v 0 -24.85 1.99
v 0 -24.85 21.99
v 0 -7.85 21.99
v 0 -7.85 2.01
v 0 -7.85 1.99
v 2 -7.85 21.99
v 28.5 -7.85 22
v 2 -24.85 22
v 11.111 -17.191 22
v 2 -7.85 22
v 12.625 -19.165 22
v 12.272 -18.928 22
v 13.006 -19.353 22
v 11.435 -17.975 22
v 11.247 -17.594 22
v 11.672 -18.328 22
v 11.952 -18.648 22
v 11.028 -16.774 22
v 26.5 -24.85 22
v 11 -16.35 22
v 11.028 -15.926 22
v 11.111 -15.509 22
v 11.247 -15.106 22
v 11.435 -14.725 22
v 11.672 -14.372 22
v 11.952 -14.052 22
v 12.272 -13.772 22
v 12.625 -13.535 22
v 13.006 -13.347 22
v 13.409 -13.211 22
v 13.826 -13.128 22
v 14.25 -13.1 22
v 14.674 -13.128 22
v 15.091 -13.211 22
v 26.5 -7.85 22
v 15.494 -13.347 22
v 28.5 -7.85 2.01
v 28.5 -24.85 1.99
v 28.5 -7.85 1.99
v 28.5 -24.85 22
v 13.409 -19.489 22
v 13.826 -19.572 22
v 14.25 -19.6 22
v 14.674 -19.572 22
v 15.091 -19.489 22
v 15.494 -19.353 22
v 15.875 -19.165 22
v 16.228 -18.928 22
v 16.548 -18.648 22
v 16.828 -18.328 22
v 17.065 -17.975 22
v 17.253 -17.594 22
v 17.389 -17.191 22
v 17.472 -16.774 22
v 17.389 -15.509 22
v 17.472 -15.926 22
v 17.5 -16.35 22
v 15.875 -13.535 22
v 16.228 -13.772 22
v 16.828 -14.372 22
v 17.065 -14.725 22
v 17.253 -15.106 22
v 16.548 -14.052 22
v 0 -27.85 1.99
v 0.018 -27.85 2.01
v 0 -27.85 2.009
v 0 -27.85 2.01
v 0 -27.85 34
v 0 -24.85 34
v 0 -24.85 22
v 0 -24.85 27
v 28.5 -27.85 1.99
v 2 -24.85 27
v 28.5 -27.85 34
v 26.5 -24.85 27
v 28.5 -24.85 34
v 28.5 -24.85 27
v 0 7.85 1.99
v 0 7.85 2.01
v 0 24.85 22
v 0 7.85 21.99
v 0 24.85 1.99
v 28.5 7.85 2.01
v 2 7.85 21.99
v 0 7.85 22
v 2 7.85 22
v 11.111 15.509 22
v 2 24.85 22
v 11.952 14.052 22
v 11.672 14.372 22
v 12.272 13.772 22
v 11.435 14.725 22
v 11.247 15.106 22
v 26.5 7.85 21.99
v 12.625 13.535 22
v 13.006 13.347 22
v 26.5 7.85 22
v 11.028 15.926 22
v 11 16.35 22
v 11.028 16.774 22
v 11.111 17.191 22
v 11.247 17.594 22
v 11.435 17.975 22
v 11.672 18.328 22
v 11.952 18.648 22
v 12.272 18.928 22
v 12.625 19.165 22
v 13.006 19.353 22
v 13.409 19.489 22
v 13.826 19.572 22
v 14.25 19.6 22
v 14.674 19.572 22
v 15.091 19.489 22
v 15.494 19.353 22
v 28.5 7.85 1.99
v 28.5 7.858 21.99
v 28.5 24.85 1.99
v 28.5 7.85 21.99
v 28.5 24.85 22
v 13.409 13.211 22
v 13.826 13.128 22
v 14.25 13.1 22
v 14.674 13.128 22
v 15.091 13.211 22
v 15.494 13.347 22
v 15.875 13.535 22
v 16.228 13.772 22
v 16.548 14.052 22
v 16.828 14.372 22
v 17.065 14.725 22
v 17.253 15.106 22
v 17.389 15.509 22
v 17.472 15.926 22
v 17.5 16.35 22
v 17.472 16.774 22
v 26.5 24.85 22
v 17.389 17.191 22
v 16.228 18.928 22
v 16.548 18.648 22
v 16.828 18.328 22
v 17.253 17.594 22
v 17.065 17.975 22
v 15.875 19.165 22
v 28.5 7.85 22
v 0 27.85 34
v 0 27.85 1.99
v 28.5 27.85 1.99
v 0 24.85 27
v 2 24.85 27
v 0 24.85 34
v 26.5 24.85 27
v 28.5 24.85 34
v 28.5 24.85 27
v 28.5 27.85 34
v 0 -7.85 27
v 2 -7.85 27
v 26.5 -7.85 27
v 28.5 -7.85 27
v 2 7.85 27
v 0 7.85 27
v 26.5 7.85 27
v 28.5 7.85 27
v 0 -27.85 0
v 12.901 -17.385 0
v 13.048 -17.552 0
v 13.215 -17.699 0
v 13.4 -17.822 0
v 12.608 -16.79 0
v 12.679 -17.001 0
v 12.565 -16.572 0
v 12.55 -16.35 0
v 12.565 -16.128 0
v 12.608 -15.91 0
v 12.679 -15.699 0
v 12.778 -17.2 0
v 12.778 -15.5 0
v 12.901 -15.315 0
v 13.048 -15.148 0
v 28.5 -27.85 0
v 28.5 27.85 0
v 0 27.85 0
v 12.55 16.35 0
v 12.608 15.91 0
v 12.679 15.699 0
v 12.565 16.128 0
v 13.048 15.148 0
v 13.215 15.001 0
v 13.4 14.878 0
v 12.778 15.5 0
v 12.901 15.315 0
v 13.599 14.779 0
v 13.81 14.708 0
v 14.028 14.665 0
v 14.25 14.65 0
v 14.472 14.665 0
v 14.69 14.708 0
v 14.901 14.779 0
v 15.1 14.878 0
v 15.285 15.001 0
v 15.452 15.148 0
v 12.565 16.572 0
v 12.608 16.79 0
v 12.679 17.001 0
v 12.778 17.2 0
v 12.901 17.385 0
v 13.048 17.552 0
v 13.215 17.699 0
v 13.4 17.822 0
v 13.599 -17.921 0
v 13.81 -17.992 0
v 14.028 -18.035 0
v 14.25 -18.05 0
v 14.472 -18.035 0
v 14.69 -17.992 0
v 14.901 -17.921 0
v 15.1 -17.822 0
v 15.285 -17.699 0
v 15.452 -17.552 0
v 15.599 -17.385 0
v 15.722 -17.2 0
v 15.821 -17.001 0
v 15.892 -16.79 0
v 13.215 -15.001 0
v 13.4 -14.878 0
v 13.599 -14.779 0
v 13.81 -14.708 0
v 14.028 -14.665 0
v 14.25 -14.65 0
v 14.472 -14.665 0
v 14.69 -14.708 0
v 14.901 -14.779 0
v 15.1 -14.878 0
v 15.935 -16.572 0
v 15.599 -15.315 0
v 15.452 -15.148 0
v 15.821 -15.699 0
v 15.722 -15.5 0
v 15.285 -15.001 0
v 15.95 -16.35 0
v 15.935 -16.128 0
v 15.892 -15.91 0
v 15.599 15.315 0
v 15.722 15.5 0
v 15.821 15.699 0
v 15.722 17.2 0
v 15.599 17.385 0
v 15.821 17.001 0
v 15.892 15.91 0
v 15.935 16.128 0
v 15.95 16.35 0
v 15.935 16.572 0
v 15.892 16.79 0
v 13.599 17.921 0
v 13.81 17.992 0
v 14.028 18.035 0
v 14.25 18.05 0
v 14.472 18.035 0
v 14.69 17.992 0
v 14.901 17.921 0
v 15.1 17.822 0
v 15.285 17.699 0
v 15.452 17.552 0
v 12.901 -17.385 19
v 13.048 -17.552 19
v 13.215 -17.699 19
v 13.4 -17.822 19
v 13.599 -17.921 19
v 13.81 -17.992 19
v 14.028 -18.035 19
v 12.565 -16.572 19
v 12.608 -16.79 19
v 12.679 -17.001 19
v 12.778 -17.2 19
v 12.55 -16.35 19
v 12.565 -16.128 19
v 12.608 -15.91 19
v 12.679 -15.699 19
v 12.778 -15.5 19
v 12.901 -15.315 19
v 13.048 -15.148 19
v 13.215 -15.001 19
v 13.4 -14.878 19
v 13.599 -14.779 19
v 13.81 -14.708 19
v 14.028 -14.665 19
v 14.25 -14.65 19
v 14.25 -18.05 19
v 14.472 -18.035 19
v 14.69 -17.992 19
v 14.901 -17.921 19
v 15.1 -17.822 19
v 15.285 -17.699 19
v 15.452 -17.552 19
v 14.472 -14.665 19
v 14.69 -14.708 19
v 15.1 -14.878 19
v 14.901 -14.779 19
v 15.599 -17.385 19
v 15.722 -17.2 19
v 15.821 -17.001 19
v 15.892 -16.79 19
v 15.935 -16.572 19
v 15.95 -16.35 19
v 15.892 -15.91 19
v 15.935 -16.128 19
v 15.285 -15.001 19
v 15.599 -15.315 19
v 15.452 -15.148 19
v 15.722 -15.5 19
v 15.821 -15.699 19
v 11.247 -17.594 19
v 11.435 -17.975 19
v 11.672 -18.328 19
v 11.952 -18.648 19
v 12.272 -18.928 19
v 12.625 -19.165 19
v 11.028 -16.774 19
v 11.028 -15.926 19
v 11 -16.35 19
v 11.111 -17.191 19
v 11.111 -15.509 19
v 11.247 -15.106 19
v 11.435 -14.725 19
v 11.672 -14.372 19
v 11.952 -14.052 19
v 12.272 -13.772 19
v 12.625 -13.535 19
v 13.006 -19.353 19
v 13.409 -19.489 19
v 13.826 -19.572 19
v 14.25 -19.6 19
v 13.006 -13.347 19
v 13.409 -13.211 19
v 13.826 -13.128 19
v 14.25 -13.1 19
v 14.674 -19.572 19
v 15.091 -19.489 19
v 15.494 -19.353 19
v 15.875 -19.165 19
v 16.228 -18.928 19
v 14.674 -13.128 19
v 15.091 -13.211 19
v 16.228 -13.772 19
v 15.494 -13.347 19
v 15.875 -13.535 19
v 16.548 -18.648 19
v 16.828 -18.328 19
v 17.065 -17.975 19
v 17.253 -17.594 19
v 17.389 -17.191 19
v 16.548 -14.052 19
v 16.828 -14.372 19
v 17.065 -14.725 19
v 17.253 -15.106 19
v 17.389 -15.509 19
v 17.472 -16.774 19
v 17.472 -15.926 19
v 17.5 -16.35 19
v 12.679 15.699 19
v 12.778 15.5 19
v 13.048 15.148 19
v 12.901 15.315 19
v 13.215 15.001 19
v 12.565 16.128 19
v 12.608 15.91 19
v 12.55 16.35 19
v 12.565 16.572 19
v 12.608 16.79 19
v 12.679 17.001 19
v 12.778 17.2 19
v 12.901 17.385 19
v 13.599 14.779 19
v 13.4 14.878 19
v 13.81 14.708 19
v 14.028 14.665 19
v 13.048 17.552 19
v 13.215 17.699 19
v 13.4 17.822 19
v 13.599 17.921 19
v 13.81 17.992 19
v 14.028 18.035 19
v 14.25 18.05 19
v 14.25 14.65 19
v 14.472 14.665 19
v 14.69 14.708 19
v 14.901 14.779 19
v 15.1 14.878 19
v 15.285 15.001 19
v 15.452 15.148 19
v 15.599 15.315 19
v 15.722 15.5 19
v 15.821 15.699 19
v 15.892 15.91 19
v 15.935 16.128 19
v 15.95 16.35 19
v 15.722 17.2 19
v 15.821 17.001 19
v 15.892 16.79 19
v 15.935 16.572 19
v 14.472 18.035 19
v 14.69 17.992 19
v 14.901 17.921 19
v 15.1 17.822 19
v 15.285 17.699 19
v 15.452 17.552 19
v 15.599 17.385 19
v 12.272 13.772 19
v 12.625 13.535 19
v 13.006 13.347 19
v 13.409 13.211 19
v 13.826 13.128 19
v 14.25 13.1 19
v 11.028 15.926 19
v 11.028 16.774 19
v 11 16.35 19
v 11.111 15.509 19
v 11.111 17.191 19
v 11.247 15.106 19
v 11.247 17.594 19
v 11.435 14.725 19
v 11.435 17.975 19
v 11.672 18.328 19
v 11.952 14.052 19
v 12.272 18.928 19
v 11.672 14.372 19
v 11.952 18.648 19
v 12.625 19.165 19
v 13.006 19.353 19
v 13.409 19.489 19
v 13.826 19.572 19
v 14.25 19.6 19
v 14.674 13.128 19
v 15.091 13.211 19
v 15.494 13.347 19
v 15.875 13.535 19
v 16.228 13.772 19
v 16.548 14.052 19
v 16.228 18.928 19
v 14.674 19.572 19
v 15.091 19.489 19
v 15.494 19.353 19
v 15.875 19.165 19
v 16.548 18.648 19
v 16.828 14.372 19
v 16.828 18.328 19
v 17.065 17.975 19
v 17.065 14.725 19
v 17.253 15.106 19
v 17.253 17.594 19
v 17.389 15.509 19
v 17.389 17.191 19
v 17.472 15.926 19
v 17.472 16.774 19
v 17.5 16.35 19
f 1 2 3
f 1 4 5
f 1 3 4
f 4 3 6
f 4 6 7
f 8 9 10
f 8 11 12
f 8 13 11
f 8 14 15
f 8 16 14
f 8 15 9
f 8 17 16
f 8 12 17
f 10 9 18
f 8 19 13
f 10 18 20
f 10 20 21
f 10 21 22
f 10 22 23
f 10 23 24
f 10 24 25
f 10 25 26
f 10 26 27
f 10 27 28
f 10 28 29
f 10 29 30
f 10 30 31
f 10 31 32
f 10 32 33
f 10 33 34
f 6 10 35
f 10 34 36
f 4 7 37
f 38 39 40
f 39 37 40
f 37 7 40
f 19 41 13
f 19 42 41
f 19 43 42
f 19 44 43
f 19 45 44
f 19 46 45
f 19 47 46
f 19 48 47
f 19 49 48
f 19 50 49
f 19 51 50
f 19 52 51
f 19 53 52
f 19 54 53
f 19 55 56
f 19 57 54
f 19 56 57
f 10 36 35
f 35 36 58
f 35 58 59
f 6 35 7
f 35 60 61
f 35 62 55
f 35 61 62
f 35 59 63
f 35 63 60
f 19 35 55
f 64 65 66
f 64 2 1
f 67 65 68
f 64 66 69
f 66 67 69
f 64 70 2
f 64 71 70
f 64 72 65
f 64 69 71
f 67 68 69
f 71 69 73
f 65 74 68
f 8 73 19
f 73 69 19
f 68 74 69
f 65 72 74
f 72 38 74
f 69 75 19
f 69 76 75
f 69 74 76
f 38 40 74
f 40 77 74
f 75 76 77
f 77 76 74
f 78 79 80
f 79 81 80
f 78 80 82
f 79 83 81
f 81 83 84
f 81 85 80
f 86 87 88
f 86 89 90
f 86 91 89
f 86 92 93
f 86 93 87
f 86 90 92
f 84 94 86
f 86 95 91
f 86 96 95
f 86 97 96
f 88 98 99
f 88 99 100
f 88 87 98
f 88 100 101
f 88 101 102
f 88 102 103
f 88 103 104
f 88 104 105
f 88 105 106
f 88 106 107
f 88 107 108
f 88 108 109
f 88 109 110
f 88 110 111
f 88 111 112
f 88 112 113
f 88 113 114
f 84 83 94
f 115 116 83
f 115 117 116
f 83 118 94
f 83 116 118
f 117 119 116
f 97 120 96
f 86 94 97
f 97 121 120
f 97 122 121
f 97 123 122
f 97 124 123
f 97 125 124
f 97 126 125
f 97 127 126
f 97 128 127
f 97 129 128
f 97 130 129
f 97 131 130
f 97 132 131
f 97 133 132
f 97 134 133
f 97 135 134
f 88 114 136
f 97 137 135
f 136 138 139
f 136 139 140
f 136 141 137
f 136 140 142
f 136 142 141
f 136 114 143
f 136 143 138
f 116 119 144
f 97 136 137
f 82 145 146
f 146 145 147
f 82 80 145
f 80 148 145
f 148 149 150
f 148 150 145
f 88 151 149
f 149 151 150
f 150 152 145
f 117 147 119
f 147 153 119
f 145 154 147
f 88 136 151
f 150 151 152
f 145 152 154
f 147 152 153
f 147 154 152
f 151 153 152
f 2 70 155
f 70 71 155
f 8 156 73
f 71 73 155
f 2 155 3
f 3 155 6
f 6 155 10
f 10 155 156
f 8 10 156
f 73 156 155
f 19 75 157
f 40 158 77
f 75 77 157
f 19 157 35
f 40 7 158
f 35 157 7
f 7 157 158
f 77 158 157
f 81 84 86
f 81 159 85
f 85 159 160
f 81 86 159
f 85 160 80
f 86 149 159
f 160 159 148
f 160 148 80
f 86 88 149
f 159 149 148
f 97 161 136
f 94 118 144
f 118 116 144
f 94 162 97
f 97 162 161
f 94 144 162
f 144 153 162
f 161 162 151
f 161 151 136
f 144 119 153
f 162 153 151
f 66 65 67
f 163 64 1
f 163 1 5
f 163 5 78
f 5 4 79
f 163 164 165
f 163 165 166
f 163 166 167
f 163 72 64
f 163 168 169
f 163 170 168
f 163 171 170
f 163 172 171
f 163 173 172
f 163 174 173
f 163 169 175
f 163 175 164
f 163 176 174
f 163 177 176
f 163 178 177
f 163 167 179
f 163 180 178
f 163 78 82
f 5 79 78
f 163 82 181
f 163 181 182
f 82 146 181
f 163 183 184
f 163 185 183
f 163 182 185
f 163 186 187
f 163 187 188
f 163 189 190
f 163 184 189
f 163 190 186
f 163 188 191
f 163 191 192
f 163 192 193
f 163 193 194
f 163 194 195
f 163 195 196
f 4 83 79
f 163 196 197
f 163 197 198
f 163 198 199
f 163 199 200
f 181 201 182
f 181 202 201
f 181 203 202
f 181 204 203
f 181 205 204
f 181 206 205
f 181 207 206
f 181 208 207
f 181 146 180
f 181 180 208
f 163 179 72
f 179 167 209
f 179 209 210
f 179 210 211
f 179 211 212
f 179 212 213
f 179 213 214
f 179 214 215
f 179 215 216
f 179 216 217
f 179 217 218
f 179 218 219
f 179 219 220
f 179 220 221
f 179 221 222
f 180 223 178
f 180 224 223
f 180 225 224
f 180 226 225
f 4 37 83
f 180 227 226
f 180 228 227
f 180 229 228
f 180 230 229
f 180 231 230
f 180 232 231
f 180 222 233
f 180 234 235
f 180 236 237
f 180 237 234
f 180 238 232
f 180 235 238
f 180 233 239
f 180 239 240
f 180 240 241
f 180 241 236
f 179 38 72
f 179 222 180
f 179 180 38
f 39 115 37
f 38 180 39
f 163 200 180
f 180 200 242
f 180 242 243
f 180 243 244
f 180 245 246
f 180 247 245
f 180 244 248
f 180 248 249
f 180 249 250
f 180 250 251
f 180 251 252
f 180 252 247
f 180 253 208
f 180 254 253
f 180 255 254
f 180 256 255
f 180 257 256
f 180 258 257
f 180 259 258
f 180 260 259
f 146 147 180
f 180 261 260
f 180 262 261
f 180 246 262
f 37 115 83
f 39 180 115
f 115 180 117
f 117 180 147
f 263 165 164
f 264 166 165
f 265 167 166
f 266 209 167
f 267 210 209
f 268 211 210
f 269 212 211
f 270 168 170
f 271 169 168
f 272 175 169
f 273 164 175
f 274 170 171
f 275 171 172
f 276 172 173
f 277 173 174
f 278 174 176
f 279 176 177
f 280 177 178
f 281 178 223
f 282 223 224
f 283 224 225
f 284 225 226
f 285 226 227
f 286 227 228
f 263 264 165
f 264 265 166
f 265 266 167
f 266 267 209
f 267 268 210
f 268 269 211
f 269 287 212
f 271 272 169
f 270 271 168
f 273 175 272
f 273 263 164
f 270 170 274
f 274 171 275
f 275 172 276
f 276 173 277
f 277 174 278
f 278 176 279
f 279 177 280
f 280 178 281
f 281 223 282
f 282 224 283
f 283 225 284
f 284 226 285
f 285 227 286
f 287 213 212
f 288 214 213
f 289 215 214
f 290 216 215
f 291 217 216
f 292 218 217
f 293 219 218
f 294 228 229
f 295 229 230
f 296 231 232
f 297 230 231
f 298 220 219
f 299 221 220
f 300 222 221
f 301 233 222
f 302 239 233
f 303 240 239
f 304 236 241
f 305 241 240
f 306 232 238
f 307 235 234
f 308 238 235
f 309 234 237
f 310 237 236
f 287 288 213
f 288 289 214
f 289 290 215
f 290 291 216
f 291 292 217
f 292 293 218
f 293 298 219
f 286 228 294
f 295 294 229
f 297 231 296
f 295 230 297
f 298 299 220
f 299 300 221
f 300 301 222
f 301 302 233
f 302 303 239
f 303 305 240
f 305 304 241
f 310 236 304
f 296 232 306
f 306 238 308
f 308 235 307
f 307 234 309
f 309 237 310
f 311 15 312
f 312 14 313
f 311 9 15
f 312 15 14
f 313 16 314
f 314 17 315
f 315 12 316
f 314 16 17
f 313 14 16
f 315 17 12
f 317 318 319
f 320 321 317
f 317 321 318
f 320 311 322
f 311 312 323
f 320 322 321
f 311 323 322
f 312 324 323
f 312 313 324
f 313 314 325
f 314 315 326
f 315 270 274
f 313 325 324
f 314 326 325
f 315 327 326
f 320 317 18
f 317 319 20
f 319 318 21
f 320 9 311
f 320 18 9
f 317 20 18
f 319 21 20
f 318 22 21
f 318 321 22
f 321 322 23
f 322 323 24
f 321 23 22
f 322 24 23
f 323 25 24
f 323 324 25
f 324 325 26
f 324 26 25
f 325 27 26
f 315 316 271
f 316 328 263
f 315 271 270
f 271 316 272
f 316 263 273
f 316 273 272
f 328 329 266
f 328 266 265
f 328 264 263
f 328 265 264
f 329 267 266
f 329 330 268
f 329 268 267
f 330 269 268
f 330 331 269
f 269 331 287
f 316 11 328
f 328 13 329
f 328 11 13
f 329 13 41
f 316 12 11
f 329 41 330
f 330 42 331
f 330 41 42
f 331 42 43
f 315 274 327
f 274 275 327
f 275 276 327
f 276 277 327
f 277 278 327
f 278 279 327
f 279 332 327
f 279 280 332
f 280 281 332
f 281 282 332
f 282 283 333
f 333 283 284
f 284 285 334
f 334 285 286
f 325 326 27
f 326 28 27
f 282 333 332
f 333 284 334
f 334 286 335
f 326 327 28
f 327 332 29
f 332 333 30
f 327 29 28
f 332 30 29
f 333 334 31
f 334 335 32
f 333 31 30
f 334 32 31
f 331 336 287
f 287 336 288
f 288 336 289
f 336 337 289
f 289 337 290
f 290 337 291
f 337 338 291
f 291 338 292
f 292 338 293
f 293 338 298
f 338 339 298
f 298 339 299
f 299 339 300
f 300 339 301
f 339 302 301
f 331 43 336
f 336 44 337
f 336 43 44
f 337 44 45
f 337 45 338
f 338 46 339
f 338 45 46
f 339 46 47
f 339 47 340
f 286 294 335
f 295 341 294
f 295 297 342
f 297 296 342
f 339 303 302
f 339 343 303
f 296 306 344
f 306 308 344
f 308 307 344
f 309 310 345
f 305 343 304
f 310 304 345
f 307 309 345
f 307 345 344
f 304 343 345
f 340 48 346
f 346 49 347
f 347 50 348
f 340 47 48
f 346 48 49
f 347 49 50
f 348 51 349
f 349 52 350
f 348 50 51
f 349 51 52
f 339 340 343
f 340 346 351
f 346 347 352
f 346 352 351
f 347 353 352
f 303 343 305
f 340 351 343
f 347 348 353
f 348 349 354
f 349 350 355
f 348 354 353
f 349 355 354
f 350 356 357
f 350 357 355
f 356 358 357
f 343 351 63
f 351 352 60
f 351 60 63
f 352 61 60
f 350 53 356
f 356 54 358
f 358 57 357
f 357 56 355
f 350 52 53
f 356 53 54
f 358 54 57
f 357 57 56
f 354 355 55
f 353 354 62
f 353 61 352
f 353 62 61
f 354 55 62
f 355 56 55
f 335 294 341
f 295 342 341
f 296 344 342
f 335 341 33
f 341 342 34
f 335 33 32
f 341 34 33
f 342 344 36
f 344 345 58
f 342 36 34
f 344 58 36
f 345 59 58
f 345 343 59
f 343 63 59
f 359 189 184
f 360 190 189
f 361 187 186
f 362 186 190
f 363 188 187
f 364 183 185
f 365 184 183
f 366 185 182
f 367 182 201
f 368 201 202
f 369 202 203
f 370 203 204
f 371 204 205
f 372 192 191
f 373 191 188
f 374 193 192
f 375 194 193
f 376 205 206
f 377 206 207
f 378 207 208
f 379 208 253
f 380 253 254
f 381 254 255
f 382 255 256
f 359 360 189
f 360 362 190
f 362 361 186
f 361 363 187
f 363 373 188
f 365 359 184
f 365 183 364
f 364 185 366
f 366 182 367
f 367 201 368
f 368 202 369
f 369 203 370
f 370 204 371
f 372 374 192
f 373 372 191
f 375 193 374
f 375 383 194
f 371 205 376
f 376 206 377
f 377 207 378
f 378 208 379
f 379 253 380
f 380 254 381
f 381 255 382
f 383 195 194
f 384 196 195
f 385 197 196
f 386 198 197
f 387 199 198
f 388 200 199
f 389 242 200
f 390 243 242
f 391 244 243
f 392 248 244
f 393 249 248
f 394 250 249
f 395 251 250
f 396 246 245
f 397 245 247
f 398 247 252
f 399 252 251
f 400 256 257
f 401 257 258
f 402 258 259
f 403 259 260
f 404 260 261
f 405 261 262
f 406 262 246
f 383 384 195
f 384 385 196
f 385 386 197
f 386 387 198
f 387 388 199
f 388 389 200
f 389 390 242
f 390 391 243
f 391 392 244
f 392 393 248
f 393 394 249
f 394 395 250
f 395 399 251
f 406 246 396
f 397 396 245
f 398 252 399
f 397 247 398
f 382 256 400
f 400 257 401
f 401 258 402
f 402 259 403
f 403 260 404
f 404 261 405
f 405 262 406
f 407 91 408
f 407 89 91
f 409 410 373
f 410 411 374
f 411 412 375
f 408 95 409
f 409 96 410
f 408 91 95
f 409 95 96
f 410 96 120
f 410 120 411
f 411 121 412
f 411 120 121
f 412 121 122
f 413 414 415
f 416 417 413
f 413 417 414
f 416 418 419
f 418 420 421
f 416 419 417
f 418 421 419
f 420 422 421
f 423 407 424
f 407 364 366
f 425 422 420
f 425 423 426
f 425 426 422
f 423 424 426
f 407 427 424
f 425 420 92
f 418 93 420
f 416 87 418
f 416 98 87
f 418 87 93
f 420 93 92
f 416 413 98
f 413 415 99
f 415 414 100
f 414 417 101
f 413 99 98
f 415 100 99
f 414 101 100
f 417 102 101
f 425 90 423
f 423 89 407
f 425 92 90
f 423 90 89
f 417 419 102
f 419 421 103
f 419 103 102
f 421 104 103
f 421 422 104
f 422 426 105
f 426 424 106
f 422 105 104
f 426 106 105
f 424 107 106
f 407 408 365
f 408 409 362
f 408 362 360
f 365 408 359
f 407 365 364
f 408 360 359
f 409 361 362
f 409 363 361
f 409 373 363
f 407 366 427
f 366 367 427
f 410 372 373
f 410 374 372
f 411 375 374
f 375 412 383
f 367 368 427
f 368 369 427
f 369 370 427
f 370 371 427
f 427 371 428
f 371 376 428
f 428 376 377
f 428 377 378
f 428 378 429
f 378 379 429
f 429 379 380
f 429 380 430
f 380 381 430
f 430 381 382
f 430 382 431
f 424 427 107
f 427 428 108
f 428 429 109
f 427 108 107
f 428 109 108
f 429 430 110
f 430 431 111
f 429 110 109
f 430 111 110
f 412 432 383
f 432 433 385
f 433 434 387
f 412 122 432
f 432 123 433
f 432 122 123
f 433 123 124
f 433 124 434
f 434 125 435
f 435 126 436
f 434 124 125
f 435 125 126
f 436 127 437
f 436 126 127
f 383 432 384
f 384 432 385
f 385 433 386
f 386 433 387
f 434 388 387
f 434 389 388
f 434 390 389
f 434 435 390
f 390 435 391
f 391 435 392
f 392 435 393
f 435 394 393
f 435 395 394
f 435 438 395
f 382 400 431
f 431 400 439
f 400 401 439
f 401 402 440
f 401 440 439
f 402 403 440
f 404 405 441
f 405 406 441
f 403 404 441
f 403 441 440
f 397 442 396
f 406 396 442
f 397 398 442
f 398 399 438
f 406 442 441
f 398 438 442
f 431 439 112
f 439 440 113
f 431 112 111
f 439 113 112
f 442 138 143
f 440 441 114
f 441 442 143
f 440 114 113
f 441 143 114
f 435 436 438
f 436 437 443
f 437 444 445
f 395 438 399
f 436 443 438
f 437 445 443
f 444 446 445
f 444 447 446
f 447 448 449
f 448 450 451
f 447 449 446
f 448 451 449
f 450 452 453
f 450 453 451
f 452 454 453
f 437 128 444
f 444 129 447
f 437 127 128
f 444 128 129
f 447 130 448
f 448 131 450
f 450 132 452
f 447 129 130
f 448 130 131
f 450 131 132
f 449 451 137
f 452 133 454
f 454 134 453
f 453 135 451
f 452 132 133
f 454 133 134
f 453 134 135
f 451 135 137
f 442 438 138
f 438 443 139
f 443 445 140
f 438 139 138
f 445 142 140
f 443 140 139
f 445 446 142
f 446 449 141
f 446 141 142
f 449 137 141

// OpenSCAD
// The sonar cradle as its own part: towers, end walls and lips on a 2 mm base, with an M3 bolt
// hole down through each tower (head recessed into the tower top, under the case) matching the
// two holes in the chassis plate. Prints base-down.
include <chassis.scad>
coupon_only = true;
show_ghosts = false;
base_t = 2;
module holder() {
    pocket_d = sonar_case_d + clr;  pocket_w = sonar_case_w + clr;
    x1 = sonar_x_front; x0 = x1 - pocket_d - 2 * sonar_lip;
    // bring the chassis-frame cradle down onto the base
    translate([-x0, -sonar_y, -(plate_z + plate_t) + base_t])
        difference() {
            union() {
                sonar_cradle();
                translate([x0, sonar_y - pocket_w / 2 - sonar_wall_t, plate_z + plate_t - base_t])
                    cube([pocket_d + 2 * sonar_lip, pocket_w + 2 * sonar_wall_t, base_t + 0.01]);
            }
            sonar_cradle_bolt_cuts();
        }
}
holder();
